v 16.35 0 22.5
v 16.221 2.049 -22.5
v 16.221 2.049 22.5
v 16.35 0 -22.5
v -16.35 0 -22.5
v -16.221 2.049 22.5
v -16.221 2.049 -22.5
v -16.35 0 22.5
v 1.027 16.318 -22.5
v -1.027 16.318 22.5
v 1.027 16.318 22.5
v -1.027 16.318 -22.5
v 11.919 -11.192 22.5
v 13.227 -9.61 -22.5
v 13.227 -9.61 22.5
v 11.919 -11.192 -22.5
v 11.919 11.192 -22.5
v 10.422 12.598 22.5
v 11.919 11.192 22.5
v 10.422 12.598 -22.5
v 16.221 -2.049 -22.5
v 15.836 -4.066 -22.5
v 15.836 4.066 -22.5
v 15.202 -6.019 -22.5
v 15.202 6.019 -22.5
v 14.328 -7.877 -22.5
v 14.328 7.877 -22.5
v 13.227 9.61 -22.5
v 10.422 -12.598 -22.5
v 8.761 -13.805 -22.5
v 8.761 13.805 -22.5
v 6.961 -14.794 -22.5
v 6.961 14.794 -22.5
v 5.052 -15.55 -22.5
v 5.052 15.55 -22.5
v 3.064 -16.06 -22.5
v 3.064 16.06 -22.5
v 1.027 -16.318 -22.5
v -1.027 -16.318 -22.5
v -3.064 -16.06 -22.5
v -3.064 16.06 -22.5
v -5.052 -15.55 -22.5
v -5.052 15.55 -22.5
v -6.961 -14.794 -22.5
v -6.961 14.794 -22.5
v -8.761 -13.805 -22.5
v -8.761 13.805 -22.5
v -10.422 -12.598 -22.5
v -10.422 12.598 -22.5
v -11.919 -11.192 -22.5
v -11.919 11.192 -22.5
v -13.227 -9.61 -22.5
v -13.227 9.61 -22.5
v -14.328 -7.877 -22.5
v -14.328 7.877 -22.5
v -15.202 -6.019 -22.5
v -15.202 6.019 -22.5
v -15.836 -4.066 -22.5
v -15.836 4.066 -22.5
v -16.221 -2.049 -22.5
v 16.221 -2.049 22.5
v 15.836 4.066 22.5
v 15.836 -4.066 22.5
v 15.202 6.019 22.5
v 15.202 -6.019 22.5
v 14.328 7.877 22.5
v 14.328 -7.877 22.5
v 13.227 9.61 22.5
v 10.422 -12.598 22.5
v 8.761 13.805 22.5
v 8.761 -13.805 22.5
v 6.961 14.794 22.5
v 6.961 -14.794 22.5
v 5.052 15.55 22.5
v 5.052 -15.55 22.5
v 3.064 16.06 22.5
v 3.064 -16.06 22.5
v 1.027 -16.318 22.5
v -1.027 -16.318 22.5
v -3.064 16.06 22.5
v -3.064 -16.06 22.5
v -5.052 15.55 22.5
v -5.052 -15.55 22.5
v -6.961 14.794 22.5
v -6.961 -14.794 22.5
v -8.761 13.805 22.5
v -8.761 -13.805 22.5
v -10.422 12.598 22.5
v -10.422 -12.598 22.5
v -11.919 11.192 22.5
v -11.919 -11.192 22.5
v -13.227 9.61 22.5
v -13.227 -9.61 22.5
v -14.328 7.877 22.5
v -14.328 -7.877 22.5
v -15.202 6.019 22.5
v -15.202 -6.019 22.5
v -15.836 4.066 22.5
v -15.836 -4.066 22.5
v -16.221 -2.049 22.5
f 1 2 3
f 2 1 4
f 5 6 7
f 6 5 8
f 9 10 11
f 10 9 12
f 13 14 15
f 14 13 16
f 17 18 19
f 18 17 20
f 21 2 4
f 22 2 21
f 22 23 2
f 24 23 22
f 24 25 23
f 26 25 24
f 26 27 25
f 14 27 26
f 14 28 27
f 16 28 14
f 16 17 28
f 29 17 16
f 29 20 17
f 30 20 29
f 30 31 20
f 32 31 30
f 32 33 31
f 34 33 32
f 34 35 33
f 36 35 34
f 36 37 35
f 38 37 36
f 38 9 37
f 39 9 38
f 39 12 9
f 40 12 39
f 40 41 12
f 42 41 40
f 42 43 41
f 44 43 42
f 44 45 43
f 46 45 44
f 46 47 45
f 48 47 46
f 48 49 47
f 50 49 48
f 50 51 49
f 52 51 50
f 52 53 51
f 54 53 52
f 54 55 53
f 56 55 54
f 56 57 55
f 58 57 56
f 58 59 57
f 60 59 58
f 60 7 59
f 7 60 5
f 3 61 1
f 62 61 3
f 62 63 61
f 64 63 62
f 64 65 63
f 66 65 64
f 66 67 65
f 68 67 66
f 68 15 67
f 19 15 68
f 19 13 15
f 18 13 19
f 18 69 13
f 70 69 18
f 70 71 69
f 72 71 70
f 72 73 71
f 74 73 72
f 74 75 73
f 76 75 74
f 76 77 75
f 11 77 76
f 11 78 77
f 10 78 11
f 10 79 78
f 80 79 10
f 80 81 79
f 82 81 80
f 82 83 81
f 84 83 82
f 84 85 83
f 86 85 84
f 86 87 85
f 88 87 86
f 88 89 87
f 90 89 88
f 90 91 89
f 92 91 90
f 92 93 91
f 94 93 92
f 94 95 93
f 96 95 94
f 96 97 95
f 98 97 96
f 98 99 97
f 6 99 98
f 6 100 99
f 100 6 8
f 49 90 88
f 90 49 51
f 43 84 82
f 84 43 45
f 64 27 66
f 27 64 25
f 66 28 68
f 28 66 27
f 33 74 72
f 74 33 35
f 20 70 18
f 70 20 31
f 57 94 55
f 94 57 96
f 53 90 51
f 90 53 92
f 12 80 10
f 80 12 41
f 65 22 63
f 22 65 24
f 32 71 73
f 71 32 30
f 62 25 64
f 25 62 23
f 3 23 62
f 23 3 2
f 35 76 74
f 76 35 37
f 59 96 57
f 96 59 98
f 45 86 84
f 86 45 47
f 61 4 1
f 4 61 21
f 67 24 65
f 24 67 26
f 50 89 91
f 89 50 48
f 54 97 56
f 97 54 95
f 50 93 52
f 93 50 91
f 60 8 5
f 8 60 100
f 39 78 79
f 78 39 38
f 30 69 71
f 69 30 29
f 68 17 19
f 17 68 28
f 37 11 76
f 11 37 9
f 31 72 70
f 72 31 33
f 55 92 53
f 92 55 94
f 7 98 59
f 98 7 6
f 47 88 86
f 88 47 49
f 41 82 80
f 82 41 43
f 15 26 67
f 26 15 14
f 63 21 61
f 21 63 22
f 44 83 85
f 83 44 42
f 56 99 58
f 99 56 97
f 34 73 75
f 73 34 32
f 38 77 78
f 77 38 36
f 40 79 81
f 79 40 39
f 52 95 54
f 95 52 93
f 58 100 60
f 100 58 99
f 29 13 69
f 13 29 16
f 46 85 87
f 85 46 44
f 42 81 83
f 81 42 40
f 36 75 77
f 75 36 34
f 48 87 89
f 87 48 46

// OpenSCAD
$fn = 50;


difference() {
	union() {
		translate(v = [0, 0, -22.5000000000]) {
			cylinder(h = 45, r = 16.3500000000);
		}
	}
	union() {
		translate(v = [0, 0, -100.0000000000]) {
			cylinder(h = 200, r = 0);
		}
	}
}
